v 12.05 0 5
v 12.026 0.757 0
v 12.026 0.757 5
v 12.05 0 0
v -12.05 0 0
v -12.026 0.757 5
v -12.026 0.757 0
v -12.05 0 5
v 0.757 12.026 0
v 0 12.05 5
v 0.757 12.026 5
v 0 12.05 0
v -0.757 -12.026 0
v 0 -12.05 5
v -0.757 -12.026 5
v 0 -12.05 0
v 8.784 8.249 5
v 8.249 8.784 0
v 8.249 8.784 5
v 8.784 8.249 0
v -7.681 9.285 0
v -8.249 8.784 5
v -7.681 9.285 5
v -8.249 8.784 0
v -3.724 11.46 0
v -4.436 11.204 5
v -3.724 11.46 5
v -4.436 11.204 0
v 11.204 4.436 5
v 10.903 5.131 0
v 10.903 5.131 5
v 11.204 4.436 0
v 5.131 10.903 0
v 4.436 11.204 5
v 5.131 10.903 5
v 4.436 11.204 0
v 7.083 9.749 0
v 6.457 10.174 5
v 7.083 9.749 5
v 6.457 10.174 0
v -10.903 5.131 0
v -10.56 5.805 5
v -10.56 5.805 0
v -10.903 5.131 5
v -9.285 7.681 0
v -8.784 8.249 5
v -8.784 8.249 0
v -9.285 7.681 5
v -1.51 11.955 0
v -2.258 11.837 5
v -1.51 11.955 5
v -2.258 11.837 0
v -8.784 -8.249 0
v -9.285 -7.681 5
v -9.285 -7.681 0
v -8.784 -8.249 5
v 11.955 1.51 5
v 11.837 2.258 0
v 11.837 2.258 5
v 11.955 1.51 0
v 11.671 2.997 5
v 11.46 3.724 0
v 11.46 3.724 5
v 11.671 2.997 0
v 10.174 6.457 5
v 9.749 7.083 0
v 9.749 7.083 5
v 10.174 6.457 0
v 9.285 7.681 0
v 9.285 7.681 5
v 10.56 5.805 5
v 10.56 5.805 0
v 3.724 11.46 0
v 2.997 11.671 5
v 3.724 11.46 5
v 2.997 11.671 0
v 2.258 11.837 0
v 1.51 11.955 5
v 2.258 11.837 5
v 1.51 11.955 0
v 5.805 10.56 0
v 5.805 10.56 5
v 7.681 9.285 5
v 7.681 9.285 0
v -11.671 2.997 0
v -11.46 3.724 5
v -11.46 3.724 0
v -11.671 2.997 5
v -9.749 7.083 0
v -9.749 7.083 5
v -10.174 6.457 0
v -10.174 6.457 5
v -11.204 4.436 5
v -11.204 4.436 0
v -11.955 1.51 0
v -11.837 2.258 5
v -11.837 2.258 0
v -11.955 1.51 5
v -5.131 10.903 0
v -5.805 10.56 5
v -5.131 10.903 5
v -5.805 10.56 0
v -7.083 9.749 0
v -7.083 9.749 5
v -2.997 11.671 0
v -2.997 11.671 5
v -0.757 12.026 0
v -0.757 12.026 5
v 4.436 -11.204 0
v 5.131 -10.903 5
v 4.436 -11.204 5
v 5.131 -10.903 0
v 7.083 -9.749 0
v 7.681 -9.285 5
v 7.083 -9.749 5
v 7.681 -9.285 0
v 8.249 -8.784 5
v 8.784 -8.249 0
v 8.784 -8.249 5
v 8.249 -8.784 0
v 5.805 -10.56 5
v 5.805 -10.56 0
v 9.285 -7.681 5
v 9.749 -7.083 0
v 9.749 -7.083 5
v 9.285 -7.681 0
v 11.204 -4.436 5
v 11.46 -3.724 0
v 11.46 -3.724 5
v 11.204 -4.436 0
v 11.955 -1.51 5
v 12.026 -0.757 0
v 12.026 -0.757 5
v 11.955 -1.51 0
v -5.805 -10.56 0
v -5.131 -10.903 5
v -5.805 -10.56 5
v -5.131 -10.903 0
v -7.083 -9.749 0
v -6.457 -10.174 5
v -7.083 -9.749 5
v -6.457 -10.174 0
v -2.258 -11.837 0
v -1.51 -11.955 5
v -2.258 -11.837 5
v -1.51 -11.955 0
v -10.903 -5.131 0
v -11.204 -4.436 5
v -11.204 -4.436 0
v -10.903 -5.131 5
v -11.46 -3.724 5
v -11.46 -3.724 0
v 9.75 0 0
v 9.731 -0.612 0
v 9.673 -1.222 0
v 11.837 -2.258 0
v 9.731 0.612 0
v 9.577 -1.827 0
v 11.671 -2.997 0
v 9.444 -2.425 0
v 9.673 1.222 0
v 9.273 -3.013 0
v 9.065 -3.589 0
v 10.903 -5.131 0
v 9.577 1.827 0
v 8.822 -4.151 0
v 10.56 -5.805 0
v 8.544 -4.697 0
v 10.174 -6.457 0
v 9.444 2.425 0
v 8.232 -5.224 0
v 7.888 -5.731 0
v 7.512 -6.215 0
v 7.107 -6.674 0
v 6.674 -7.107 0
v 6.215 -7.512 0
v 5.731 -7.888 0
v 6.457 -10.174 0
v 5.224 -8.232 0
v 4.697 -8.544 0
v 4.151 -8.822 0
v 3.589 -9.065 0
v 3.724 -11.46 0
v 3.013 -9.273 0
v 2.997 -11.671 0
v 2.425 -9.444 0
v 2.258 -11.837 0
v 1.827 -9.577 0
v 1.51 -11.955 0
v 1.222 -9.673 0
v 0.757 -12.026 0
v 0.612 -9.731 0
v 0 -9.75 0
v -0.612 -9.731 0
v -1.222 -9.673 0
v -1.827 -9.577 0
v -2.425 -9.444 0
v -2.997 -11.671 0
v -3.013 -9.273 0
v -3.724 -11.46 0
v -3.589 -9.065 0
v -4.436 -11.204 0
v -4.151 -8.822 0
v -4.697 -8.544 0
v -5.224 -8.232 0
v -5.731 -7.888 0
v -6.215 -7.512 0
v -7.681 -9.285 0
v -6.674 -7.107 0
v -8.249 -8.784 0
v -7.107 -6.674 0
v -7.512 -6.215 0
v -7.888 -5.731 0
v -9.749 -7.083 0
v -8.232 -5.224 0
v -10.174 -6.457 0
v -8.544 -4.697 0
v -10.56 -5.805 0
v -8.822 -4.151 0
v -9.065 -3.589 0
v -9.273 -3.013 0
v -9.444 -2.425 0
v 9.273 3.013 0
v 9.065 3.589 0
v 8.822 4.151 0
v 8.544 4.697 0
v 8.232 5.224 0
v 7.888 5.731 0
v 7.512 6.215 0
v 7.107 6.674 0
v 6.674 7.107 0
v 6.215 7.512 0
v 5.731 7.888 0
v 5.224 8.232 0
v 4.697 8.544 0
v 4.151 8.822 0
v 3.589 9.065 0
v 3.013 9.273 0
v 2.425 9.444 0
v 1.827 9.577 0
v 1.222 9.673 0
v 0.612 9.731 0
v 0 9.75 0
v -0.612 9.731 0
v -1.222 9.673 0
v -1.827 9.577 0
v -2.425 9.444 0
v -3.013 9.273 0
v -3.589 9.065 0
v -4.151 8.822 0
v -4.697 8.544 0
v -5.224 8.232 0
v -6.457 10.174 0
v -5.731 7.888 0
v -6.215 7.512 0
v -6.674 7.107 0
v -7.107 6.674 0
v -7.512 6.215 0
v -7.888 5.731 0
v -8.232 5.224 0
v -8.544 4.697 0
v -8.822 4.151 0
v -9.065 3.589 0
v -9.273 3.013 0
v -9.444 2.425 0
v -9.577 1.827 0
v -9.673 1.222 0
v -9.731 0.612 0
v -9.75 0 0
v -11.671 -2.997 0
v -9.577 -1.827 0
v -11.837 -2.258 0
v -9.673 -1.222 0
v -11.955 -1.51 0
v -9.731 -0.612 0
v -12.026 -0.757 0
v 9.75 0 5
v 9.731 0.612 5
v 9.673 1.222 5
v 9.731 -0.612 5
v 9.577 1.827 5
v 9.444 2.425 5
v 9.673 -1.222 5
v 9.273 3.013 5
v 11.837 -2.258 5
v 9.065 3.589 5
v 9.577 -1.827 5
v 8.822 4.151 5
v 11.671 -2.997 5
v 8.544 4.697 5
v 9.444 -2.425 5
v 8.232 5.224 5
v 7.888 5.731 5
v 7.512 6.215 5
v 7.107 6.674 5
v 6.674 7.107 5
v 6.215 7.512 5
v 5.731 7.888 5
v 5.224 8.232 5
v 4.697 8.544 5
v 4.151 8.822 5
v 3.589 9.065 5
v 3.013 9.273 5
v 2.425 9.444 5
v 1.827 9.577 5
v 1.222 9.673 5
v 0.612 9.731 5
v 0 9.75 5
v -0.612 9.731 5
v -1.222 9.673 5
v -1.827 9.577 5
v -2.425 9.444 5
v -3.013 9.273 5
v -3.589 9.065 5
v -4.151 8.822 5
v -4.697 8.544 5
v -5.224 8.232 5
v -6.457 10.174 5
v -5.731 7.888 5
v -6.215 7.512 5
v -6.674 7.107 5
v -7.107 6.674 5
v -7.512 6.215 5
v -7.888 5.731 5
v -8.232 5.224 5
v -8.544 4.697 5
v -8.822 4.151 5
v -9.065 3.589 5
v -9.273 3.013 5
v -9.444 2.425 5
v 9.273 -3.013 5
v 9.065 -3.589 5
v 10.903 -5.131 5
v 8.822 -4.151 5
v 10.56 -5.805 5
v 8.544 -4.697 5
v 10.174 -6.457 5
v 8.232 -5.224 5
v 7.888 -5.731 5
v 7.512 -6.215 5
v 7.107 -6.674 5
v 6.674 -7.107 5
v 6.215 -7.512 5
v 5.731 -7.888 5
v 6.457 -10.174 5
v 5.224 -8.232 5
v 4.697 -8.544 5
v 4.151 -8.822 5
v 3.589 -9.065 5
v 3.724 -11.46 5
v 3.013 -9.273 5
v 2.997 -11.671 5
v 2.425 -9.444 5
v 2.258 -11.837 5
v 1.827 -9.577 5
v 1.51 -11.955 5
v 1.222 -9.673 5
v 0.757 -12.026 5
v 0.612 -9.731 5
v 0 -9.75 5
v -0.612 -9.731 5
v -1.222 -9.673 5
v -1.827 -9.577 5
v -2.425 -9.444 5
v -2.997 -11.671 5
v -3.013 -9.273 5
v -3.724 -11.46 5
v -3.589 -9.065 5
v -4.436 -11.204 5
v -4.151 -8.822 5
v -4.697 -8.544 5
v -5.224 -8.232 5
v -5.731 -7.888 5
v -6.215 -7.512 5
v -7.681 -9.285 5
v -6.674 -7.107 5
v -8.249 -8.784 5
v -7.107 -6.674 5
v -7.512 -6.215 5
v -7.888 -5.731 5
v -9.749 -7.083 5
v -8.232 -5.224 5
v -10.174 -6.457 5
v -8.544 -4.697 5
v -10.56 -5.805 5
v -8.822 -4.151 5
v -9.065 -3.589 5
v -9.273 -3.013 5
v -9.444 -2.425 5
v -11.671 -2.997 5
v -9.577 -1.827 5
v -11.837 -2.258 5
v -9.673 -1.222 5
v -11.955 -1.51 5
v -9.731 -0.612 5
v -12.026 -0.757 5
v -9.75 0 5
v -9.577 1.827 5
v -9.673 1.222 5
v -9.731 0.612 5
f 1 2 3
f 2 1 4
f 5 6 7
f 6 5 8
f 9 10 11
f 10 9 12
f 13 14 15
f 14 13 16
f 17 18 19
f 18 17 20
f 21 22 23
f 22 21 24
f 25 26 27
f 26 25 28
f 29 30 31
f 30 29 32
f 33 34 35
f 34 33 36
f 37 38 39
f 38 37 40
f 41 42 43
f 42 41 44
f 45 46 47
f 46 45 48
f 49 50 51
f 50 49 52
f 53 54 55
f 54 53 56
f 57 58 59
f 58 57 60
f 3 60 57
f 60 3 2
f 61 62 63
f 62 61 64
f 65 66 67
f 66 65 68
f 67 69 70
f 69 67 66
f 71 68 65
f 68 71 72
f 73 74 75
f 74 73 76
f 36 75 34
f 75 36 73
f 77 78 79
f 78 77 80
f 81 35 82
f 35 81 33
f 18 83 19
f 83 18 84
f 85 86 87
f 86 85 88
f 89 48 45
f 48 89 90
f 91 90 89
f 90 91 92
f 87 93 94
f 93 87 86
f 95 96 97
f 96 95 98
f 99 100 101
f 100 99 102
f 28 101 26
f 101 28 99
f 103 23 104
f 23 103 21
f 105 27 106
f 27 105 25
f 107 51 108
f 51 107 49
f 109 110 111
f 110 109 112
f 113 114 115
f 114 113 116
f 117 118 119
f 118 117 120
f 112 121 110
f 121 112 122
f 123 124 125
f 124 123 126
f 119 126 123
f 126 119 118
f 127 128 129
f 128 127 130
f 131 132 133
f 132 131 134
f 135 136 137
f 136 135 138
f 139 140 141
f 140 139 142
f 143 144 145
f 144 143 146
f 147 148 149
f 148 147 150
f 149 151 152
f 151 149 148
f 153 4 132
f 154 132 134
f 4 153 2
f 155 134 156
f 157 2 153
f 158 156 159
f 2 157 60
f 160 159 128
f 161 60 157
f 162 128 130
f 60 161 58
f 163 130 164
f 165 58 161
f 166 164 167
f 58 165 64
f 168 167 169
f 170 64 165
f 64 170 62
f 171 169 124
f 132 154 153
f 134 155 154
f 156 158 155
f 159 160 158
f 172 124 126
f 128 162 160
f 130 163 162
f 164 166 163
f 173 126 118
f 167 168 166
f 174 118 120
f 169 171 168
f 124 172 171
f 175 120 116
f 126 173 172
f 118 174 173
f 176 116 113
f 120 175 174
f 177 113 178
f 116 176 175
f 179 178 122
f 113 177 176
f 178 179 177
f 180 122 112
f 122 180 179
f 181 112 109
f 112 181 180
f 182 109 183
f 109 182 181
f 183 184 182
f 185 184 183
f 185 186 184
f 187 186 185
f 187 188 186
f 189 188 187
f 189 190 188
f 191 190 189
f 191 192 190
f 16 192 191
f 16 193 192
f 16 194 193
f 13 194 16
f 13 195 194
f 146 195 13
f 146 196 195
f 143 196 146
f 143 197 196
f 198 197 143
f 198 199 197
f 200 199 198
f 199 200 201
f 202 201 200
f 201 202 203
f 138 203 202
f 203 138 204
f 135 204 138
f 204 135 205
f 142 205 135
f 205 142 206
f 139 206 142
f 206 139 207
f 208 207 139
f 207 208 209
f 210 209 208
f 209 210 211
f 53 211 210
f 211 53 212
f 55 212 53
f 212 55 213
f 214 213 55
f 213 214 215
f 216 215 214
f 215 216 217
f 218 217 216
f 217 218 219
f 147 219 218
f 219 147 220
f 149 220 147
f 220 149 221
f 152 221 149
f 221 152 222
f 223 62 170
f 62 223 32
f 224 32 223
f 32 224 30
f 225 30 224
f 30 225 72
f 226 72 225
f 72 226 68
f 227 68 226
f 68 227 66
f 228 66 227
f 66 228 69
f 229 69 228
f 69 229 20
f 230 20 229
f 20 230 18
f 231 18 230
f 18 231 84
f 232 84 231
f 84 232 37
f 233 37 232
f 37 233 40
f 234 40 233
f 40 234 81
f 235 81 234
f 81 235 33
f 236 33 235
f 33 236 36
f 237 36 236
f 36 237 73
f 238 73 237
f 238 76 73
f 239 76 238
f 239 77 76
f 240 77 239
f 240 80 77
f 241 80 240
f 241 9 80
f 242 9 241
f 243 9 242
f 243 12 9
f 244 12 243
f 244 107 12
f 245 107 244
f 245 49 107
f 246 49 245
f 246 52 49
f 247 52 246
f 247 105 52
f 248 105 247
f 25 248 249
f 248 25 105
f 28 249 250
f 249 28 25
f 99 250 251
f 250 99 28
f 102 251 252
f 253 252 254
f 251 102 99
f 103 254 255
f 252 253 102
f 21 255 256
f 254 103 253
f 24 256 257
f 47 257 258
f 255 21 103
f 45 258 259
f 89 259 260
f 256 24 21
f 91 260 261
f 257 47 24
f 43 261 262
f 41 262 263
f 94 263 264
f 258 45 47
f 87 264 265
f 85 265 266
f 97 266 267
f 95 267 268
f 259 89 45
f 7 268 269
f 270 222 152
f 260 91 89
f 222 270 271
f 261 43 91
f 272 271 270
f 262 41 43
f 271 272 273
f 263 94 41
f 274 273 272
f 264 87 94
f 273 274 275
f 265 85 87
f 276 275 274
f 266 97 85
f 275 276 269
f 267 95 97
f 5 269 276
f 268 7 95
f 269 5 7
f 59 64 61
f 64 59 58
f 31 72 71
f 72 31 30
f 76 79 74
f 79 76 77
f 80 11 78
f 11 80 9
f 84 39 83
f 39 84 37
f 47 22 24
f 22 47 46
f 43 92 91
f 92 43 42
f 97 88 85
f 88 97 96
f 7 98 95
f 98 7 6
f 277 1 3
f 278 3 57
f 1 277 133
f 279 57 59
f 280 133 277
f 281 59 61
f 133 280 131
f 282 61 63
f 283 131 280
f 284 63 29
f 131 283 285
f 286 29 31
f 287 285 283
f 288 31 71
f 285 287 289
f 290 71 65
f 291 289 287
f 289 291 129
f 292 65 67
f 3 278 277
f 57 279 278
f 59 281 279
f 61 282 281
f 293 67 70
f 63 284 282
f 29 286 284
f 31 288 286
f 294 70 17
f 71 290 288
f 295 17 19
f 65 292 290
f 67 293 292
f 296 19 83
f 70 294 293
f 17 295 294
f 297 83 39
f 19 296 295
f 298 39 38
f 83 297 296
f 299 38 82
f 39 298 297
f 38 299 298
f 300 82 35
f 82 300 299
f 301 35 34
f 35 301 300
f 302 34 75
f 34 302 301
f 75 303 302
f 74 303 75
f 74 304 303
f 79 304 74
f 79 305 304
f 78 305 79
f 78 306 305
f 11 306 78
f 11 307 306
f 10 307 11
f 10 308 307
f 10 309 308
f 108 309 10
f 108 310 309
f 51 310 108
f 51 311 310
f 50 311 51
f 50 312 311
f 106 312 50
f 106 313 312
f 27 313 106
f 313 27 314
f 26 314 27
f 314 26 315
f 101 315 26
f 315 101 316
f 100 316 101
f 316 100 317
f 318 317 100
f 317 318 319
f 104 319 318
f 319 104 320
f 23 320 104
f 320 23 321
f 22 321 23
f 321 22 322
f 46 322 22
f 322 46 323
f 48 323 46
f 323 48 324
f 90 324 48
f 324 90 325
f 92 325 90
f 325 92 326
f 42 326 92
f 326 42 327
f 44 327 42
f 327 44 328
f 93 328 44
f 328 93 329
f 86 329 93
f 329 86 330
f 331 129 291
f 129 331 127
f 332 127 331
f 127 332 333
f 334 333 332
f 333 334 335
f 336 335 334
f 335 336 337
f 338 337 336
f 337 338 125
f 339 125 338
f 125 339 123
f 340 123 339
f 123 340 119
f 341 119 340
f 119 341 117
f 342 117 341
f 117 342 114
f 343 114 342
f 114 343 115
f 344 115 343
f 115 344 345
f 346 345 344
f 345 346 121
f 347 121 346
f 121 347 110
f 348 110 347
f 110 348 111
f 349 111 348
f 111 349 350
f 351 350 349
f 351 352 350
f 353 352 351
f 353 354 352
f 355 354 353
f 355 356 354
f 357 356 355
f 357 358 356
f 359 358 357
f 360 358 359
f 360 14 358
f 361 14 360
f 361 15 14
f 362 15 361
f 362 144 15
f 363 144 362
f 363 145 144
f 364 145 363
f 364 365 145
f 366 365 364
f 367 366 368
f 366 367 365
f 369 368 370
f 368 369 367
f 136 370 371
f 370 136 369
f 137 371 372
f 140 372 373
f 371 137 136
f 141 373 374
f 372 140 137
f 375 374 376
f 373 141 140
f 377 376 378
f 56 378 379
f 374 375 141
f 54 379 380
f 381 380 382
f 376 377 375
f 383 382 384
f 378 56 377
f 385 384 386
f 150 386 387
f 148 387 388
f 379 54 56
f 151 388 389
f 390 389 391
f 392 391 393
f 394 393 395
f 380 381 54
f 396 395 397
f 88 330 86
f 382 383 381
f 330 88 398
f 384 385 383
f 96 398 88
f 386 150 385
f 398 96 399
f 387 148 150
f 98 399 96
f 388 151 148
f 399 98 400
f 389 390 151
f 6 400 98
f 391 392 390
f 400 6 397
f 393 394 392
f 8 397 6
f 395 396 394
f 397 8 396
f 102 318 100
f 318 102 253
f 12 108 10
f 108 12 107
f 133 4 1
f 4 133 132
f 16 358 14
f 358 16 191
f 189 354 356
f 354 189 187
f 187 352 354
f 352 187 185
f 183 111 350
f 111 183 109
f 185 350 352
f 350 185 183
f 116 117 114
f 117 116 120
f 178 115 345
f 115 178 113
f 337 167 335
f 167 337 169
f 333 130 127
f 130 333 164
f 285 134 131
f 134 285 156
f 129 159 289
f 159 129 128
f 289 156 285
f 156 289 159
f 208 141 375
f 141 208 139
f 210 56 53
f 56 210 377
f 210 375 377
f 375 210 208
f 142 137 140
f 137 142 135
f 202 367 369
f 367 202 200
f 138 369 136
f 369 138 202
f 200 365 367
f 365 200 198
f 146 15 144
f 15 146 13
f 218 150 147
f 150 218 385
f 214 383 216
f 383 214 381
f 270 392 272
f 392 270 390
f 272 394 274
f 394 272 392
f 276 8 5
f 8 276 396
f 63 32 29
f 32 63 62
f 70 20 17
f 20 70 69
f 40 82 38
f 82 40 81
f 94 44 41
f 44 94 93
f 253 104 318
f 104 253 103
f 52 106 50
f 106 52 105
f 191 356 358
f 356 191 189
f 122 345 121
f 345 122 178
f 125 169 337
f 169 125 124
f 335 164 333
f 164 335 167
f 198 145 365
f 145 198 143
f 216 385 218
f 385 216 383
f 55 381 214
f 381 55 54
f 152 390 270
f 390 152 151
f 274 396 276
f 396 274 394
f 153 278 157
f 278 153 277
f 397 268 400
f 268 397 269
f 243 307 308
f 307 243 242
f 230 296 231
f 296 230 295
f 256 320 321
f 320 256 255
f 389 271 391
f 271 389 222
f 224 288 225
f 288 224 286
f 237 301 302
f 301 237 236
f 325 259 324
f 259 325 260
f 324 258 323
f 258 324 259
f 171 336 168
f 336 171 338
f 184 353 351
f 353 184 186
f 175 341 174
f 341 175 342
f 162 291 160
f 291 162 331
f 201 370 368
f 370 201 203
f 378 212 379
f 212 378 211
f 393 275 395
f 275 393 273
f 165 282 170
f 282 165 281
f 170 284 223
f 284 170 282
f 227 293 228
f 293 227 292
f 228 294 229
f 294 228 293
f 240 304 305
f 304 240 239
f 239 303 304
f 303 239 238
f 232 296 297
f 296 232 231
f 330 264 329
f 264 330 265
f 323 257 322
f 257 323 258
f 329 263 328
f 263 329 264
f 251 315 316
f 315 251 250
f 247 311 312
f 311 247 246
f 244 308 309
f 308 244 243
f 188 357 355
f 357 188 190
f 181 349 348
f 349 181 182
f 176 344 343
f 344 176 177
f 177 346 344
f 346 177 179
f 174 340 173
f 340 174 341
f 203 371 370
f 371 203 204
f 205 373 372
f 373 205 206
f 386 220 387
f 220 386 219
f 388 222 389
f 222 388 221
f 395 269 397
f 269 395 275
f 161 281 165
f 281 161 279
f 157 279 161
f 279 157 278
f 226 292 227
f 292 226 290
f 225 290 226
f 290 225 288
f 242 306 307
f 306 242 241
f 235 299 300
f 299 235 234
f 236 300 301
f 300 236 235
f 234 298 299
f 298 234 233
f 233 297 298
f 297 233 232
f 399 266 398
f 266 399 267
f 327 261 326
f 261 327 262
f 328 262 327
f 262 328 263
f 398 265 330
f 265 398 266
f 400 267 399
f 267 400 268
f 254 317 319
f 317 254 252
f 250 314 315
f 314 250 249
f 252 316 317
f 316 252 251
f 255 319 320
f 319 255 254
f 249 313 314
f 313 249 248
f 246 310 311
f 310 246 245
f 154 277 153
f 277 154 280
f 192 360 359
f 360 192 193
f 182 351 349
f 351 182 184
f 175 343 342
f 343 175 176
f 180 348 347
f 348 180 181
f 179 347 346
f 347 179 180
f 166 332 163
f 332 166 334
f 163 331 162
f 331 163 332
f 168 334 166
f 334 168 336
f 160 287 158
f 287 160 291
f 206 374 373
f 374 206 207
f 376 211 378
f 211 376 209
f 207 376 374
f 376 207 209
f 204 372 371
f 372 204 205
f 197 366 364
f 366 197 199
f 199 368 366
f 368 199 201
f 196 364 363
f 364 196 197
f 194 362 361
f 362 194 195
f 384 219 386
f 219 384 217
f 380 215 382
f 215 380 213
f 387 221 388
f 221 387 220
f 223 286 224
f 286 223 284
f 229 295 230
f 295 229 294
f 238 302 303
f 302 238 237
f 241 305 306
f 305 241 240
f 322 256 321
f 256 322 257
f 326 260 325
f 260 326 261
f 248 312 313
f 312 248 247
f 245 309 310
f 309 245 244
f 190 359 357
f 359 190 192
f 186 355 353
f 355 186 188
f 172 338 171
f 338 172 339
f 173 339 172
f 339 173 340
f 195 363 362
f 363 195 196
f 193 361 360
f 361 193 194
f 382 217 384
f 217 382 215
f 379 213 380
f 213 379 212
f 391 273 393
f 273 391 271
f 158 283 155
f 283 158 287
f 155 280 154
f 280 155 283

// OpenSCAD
/*
     Cone and Coupler generator by concretedog
All dimensions in mm
CC BY-NC-SA 3.0

*/

nose_length=55;         //Length of the nosecone (not including the shoulder)
shoulder_length=5;     //Length of the shoulder 
coupler_radius=24.1/2;	 //Radius of the coupling ring also shoulder radius of nosecone that sits inside the tube
body_ext_radius=25.3/2;	 //Radius of the outside of the body tube 
coupler_length=50;      //Length of the coupling tube
$fn = 100;              //Number of fragments modeled around the circle-  
                         //-the higher the $fn the smoother the surface but
                         //-takes longer to render. 100 is fine for most!

 
/*      
union(){
    
    
  	difference() {
		cylinder(h=shoulder_length, r1=coupler_radius, r2=coupler_radius);
     
      cylinder(60,19.5/2,19.5/2);

    }
    
	translate ([0,0,shoulder_length]) scale([1,1,nose_length/body_ext_radius]) 
    difference() {
     
		sphere(r=body_ext_radius);
           cylinder(60,19.5/2,19.5/2);
		translate ([0,0,-body_ext_radius*0.5]) cube(size=[body_ext_radius*2,body_ext_radius*2,body_ext_radius],center=true);
	}
    
}

//##### Coupler code section #######

*/
/*
translate([50,50,0]) { //translate just moves coupler away from nosecone...need to move it more if doing a big nosecone!!
    difference() {
        cylinder(h=coupler_length, r1=coupler_radius, r2=coupler_radius);
        cylinder(h=coupler_length, r1=coupler_radius-4, r2=coupler_radius-4);
    }
}
*/

difference(){
    cylinder(5,coupler_radius,coupler_radius);
    cylinder(5,19.5/2,19.5/2);
    
}
